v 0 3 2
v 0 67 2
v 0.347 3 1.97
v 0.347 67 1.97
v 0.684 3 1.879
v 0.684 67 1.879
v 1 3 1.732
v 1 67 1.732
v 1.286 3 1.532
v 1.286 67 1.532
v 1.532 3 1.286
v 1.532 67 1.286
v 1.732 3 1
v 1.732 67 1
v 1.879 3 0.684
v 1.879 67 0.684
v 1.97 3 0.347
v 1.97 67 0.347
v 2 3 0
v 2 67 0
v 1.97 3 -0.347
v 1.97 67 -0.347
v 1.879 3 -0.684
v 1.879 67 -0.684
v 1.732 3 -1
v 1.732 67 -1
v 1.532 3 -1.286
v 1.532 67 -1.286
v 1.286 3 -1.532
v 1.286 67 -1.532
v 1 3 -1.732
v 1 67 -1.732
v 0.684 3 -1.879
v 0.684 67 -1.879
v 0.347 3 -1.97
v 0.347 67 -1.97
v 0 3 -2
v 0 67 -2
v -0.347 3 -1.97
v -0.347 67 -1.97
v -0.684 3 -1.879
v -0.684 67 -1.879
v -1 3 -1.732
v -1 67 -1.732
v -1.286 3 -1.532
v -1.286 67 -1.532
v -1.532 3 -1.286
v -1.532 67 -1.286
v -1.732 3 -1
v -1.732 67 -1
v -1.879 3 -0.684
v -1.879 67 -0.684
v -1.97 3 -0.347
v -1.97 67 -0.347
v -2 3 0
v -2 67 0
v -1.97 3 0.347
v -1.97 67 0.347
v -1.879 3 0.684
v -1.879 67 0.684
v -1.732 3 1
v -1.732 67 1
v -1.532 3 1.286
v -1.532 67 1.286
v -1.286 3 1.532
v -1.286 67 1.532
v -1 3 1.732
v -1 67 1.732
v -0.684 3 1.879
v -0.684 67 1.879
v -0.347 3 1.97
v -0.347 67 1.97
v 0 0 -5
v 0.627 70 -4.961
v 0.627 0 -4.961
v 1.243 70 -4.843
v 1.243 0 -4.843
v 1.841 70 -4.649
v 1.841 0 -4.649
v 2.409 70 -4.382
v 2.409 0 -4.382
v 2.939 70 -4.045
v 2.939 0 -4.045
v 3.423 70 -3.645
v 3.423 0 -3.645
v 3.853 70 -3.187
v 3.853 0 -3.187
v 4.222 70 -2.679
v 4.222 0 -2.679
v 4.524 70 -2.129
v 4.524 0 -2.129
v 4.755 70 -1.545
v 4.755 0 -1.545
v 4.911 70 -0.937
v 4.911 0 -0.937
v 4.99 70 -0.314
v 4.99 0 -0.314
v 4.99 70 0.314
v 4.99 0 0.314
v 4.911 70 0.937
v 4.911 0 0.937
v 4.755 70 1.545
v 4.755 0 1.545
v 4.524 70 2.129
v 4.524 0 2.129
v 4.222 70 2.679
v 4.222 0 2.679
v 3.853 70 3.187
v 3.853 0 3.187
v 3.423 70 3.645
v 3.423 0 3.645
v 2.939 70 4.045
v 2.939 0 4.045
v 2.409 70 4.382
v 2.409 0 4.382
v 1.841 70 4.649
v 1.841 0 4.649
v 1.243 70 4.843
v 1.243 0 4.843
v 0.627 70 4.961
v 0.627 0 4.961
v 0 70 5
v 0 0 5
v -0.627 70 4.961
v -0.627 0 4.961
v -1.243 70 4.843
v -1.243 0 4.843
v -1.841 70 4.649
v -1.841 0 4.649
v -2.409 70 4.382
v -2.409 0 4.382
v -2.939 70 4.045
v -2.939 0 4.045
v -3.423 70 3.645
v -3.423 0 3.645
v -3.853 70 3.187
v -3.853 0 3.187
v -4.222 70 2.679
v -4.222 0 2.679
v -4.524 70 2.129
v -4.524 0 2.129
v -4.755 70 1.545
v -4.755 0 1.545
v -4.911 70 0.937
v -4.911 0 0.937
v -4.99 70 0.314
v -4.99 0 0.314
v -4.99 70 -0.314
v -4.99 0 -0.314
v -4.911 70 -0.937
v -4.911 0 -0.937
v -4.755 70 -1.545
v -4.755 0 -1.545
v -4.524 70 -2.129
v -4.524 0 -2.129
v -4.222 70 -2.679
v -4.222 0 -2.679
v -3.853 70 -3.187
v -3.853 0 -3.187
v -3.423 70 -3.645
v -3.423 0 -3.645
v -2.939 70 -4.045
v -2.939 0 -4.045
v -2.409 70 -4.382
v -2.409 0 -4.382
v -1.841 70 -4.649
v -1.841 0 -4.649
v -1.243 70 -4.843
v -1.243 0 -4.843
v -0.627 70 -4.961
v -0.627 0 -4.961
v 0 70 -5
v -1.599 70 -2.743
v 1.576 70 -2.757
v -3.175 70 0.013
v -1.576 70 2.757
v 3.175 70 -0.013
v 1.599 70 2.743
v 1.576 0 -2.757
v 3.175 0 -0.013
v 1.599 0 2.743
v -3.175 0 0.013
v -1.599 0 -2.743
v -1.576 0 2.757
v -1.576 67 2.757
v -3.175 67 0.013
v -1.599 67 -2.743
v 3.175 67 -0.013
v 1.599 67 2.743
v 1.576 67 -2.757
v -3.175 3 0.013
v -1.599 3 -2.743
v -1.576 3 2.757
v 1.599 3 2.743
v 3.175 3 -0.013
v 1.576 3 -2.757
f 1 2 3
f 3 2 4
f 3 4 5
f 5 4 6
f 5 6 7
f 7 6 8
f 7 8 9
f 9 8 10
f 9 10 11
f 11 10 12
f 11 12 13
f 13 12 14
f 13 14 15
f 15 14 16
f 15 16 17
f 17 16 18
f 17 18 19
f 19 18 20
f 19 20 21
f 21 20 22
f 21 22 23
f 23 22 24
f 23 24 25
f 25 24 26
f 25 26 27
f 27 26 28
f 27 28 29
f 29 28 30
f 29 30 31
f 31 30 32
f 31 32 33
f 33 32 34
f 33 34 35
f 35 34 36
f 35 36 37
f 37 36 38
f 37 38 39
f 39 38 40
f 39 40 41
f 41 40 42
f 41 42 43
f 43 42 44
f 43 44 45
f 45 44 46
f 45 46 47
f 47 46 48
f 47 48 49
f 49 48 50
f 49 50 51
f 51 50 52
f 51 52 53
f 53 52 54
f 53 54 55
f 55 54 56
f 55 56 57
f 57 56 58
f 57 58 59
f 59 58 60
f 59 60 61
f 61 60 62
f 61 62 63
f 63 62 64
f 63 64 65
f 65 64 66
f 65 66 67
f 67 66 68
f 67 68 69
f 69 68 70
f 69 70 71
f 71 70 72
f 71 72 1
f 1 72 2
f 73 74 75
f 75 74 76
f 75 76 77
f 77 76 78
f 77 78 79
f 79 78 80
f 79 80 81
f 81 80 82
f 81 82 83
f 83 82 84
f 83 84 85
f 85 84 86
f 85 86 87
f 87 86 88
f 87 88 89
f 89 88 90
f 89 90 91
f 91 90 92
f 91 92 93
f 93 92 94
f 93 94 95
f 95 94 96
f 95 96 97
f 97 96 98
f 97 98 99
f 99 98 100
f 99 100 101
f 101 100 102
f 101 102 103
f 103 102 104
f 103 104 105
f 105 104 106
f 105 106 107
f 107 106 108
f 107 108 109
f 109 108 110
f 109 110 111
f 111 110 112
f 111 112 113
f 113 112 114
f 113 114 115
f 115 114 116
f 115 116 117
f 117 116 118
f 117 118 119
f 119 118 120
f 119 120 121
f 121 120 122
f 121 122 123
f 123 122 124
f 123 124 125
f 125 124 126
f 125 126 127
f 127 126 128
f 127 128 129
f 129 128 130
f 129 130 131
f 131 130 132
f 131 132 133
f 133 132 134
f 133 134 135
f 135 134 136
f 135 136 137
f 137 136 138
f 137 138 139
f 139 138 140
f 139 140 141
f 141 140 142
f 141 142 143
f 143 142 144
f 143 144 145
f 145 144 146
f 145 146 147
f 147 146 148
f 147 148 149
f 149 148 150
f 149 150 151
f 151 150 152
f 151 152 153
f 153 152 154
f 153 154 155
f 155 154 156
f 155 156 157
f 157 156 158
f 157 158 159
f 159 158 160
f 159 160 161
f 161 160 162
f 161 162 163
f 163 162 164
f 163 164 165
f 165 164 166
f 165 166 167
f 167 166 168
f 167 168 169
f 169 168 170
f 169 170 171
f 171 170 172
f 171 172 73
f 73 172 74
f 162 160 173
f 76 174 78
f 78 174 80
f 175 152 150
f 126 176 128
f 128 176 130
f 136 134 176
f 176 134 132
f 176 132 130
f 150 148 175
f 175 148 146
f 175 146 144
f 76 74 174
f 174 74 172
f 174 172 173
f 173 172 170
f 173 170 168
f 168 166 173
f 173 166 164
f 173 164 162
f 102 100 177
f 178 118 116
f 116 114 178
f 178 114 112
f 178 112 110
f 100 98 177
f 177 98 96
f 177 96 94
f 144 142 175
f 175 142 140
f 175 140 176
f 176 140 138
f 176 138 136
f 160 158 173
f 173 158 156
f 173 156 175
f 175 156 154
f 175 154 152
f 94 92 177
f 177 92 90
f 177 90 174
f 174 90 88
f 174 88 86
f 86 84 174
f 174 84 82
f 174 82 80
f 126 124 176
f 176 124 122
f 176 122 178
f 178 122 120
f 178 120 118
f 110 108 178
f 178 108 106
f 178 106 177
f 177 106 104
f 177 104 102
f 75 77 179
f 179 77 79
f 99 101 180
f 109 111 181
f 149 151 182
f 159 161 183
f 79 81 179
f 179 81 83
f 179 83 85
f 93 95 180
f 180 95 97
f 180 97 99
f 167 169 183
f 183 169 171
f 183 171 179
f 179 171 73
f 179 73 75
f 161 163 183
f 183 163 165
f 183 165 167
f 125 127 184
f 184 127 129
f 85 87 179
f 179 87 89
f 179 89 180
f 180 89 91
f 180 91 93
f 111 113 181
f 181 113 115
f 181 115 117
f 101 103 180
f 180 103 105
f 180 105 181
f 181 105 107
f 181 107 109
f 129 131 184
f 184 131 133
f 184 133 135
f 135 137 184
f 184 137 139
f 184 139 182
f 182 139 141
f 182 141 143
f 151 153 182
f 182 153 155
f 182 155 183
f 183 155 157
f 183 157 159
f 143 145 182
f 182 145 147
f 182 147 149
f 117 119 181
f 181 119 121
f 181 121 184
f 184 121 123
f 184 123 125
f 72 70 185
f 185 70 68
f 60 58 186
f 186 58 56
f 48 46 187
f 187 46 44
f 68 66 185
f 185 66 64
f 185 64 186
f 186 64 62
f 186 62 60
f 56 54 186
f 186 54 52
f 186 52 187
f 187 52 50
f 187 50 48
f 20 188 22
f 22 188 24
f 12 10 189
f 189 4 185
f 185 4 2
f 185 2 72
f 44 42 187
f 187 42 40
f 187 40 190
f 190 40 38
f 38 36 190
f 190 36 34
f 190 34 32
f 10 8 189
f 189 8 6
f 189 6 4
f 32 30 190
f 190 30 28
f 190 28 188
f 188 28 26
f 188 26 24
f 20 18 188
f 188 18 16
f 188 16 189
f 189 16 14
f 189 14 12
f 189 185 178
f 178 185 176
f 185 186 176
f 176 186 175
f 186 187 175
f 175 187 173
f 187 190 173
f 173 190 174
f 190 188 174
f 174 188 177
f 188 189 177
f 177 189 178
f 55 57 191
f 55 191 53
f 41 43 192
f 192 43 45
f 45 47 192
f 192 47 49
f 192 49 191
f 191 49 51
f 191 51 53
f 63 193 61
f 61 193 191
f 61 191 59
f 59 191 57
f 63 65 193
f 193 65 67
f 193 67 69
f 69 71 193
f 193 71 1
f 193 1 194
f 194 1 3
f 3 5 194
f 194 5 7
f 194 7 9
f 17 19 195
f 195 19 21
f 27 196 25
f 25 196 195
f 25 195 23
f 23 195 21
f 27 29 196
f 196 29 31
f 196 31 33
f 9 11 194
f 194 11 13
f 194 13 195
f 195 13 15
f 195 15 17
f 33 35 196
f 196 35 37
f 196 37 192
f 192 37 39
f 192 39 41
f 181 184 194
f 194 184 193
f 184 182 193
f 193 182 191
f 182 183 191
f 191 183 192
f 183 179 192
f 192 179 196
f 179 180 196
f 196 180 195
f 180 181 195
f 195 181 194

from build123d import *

# Parameters (mm, degrees)
SKETCH1_R           = 5
BOSS_EXTRUDE1_DEPTH = 70
SKETCH2_R           = 2
CUT_EXTRUDE1_DEPTH  = 71
CUT_EXTRUDE2_DEPTH  = 3
LPATTERN1_COUNT     = 2
LPATTERN1_PITCH     = 67


with BuildPart() as part:
    # Sketch1 → Boss-Extrude1 (new body)
    with BuildSketch(Plane(origin=(0, 0, 0), x_dir=(1, 0, 0), z_dir=(0, 1, 0))):
        Circle(SKETCH1_R)
    extrude(amount=BOSS_EXTRUDE1_DEPTH)

    # Sketch2 → Cut-Extrude1 (cut, through all)
    with BuildSketch(Plane(origin=(0, 70, 0), x_dir=(1, 0, 0), z_dir=(0, 1, 0))):
        Circle(SKETCH2_R)
    extrude(amount=-CUT_EXTRUDE1_DEPTH, mode=Mode.SUBTRACT)

    # Sketch3 → Cut-Extrude2 (cut)
    with BuildSketch(Plane(origin=(0, 70, 0), x_dir=(1, 0, 0), z_dir=(0, 1, 0))):
        Polygon((1.599030575, -2.74343481), (3.175399526, 0.013083694), (1.576368951, 2.756518504), (-1.599030575, 2.74343481), (-3.175399526, -0.013083694), (-1.576368951, -2.756518504), align=None)
    cut_extrude2 = extrude(amount=-CUT_EXTRUDE2_DEPTH, mode=Mode.SUBTRACT)

    # LPattern1: Cut-Extrude2 ×2
    with Locations(*[(0, -i * LPATTERN1_PITCH, 0) for i in range(1, LPATTERN1_COUNT)]):
        add(cut_extrude2, mode=Mode.SUBTRACT)


solid = part.part
